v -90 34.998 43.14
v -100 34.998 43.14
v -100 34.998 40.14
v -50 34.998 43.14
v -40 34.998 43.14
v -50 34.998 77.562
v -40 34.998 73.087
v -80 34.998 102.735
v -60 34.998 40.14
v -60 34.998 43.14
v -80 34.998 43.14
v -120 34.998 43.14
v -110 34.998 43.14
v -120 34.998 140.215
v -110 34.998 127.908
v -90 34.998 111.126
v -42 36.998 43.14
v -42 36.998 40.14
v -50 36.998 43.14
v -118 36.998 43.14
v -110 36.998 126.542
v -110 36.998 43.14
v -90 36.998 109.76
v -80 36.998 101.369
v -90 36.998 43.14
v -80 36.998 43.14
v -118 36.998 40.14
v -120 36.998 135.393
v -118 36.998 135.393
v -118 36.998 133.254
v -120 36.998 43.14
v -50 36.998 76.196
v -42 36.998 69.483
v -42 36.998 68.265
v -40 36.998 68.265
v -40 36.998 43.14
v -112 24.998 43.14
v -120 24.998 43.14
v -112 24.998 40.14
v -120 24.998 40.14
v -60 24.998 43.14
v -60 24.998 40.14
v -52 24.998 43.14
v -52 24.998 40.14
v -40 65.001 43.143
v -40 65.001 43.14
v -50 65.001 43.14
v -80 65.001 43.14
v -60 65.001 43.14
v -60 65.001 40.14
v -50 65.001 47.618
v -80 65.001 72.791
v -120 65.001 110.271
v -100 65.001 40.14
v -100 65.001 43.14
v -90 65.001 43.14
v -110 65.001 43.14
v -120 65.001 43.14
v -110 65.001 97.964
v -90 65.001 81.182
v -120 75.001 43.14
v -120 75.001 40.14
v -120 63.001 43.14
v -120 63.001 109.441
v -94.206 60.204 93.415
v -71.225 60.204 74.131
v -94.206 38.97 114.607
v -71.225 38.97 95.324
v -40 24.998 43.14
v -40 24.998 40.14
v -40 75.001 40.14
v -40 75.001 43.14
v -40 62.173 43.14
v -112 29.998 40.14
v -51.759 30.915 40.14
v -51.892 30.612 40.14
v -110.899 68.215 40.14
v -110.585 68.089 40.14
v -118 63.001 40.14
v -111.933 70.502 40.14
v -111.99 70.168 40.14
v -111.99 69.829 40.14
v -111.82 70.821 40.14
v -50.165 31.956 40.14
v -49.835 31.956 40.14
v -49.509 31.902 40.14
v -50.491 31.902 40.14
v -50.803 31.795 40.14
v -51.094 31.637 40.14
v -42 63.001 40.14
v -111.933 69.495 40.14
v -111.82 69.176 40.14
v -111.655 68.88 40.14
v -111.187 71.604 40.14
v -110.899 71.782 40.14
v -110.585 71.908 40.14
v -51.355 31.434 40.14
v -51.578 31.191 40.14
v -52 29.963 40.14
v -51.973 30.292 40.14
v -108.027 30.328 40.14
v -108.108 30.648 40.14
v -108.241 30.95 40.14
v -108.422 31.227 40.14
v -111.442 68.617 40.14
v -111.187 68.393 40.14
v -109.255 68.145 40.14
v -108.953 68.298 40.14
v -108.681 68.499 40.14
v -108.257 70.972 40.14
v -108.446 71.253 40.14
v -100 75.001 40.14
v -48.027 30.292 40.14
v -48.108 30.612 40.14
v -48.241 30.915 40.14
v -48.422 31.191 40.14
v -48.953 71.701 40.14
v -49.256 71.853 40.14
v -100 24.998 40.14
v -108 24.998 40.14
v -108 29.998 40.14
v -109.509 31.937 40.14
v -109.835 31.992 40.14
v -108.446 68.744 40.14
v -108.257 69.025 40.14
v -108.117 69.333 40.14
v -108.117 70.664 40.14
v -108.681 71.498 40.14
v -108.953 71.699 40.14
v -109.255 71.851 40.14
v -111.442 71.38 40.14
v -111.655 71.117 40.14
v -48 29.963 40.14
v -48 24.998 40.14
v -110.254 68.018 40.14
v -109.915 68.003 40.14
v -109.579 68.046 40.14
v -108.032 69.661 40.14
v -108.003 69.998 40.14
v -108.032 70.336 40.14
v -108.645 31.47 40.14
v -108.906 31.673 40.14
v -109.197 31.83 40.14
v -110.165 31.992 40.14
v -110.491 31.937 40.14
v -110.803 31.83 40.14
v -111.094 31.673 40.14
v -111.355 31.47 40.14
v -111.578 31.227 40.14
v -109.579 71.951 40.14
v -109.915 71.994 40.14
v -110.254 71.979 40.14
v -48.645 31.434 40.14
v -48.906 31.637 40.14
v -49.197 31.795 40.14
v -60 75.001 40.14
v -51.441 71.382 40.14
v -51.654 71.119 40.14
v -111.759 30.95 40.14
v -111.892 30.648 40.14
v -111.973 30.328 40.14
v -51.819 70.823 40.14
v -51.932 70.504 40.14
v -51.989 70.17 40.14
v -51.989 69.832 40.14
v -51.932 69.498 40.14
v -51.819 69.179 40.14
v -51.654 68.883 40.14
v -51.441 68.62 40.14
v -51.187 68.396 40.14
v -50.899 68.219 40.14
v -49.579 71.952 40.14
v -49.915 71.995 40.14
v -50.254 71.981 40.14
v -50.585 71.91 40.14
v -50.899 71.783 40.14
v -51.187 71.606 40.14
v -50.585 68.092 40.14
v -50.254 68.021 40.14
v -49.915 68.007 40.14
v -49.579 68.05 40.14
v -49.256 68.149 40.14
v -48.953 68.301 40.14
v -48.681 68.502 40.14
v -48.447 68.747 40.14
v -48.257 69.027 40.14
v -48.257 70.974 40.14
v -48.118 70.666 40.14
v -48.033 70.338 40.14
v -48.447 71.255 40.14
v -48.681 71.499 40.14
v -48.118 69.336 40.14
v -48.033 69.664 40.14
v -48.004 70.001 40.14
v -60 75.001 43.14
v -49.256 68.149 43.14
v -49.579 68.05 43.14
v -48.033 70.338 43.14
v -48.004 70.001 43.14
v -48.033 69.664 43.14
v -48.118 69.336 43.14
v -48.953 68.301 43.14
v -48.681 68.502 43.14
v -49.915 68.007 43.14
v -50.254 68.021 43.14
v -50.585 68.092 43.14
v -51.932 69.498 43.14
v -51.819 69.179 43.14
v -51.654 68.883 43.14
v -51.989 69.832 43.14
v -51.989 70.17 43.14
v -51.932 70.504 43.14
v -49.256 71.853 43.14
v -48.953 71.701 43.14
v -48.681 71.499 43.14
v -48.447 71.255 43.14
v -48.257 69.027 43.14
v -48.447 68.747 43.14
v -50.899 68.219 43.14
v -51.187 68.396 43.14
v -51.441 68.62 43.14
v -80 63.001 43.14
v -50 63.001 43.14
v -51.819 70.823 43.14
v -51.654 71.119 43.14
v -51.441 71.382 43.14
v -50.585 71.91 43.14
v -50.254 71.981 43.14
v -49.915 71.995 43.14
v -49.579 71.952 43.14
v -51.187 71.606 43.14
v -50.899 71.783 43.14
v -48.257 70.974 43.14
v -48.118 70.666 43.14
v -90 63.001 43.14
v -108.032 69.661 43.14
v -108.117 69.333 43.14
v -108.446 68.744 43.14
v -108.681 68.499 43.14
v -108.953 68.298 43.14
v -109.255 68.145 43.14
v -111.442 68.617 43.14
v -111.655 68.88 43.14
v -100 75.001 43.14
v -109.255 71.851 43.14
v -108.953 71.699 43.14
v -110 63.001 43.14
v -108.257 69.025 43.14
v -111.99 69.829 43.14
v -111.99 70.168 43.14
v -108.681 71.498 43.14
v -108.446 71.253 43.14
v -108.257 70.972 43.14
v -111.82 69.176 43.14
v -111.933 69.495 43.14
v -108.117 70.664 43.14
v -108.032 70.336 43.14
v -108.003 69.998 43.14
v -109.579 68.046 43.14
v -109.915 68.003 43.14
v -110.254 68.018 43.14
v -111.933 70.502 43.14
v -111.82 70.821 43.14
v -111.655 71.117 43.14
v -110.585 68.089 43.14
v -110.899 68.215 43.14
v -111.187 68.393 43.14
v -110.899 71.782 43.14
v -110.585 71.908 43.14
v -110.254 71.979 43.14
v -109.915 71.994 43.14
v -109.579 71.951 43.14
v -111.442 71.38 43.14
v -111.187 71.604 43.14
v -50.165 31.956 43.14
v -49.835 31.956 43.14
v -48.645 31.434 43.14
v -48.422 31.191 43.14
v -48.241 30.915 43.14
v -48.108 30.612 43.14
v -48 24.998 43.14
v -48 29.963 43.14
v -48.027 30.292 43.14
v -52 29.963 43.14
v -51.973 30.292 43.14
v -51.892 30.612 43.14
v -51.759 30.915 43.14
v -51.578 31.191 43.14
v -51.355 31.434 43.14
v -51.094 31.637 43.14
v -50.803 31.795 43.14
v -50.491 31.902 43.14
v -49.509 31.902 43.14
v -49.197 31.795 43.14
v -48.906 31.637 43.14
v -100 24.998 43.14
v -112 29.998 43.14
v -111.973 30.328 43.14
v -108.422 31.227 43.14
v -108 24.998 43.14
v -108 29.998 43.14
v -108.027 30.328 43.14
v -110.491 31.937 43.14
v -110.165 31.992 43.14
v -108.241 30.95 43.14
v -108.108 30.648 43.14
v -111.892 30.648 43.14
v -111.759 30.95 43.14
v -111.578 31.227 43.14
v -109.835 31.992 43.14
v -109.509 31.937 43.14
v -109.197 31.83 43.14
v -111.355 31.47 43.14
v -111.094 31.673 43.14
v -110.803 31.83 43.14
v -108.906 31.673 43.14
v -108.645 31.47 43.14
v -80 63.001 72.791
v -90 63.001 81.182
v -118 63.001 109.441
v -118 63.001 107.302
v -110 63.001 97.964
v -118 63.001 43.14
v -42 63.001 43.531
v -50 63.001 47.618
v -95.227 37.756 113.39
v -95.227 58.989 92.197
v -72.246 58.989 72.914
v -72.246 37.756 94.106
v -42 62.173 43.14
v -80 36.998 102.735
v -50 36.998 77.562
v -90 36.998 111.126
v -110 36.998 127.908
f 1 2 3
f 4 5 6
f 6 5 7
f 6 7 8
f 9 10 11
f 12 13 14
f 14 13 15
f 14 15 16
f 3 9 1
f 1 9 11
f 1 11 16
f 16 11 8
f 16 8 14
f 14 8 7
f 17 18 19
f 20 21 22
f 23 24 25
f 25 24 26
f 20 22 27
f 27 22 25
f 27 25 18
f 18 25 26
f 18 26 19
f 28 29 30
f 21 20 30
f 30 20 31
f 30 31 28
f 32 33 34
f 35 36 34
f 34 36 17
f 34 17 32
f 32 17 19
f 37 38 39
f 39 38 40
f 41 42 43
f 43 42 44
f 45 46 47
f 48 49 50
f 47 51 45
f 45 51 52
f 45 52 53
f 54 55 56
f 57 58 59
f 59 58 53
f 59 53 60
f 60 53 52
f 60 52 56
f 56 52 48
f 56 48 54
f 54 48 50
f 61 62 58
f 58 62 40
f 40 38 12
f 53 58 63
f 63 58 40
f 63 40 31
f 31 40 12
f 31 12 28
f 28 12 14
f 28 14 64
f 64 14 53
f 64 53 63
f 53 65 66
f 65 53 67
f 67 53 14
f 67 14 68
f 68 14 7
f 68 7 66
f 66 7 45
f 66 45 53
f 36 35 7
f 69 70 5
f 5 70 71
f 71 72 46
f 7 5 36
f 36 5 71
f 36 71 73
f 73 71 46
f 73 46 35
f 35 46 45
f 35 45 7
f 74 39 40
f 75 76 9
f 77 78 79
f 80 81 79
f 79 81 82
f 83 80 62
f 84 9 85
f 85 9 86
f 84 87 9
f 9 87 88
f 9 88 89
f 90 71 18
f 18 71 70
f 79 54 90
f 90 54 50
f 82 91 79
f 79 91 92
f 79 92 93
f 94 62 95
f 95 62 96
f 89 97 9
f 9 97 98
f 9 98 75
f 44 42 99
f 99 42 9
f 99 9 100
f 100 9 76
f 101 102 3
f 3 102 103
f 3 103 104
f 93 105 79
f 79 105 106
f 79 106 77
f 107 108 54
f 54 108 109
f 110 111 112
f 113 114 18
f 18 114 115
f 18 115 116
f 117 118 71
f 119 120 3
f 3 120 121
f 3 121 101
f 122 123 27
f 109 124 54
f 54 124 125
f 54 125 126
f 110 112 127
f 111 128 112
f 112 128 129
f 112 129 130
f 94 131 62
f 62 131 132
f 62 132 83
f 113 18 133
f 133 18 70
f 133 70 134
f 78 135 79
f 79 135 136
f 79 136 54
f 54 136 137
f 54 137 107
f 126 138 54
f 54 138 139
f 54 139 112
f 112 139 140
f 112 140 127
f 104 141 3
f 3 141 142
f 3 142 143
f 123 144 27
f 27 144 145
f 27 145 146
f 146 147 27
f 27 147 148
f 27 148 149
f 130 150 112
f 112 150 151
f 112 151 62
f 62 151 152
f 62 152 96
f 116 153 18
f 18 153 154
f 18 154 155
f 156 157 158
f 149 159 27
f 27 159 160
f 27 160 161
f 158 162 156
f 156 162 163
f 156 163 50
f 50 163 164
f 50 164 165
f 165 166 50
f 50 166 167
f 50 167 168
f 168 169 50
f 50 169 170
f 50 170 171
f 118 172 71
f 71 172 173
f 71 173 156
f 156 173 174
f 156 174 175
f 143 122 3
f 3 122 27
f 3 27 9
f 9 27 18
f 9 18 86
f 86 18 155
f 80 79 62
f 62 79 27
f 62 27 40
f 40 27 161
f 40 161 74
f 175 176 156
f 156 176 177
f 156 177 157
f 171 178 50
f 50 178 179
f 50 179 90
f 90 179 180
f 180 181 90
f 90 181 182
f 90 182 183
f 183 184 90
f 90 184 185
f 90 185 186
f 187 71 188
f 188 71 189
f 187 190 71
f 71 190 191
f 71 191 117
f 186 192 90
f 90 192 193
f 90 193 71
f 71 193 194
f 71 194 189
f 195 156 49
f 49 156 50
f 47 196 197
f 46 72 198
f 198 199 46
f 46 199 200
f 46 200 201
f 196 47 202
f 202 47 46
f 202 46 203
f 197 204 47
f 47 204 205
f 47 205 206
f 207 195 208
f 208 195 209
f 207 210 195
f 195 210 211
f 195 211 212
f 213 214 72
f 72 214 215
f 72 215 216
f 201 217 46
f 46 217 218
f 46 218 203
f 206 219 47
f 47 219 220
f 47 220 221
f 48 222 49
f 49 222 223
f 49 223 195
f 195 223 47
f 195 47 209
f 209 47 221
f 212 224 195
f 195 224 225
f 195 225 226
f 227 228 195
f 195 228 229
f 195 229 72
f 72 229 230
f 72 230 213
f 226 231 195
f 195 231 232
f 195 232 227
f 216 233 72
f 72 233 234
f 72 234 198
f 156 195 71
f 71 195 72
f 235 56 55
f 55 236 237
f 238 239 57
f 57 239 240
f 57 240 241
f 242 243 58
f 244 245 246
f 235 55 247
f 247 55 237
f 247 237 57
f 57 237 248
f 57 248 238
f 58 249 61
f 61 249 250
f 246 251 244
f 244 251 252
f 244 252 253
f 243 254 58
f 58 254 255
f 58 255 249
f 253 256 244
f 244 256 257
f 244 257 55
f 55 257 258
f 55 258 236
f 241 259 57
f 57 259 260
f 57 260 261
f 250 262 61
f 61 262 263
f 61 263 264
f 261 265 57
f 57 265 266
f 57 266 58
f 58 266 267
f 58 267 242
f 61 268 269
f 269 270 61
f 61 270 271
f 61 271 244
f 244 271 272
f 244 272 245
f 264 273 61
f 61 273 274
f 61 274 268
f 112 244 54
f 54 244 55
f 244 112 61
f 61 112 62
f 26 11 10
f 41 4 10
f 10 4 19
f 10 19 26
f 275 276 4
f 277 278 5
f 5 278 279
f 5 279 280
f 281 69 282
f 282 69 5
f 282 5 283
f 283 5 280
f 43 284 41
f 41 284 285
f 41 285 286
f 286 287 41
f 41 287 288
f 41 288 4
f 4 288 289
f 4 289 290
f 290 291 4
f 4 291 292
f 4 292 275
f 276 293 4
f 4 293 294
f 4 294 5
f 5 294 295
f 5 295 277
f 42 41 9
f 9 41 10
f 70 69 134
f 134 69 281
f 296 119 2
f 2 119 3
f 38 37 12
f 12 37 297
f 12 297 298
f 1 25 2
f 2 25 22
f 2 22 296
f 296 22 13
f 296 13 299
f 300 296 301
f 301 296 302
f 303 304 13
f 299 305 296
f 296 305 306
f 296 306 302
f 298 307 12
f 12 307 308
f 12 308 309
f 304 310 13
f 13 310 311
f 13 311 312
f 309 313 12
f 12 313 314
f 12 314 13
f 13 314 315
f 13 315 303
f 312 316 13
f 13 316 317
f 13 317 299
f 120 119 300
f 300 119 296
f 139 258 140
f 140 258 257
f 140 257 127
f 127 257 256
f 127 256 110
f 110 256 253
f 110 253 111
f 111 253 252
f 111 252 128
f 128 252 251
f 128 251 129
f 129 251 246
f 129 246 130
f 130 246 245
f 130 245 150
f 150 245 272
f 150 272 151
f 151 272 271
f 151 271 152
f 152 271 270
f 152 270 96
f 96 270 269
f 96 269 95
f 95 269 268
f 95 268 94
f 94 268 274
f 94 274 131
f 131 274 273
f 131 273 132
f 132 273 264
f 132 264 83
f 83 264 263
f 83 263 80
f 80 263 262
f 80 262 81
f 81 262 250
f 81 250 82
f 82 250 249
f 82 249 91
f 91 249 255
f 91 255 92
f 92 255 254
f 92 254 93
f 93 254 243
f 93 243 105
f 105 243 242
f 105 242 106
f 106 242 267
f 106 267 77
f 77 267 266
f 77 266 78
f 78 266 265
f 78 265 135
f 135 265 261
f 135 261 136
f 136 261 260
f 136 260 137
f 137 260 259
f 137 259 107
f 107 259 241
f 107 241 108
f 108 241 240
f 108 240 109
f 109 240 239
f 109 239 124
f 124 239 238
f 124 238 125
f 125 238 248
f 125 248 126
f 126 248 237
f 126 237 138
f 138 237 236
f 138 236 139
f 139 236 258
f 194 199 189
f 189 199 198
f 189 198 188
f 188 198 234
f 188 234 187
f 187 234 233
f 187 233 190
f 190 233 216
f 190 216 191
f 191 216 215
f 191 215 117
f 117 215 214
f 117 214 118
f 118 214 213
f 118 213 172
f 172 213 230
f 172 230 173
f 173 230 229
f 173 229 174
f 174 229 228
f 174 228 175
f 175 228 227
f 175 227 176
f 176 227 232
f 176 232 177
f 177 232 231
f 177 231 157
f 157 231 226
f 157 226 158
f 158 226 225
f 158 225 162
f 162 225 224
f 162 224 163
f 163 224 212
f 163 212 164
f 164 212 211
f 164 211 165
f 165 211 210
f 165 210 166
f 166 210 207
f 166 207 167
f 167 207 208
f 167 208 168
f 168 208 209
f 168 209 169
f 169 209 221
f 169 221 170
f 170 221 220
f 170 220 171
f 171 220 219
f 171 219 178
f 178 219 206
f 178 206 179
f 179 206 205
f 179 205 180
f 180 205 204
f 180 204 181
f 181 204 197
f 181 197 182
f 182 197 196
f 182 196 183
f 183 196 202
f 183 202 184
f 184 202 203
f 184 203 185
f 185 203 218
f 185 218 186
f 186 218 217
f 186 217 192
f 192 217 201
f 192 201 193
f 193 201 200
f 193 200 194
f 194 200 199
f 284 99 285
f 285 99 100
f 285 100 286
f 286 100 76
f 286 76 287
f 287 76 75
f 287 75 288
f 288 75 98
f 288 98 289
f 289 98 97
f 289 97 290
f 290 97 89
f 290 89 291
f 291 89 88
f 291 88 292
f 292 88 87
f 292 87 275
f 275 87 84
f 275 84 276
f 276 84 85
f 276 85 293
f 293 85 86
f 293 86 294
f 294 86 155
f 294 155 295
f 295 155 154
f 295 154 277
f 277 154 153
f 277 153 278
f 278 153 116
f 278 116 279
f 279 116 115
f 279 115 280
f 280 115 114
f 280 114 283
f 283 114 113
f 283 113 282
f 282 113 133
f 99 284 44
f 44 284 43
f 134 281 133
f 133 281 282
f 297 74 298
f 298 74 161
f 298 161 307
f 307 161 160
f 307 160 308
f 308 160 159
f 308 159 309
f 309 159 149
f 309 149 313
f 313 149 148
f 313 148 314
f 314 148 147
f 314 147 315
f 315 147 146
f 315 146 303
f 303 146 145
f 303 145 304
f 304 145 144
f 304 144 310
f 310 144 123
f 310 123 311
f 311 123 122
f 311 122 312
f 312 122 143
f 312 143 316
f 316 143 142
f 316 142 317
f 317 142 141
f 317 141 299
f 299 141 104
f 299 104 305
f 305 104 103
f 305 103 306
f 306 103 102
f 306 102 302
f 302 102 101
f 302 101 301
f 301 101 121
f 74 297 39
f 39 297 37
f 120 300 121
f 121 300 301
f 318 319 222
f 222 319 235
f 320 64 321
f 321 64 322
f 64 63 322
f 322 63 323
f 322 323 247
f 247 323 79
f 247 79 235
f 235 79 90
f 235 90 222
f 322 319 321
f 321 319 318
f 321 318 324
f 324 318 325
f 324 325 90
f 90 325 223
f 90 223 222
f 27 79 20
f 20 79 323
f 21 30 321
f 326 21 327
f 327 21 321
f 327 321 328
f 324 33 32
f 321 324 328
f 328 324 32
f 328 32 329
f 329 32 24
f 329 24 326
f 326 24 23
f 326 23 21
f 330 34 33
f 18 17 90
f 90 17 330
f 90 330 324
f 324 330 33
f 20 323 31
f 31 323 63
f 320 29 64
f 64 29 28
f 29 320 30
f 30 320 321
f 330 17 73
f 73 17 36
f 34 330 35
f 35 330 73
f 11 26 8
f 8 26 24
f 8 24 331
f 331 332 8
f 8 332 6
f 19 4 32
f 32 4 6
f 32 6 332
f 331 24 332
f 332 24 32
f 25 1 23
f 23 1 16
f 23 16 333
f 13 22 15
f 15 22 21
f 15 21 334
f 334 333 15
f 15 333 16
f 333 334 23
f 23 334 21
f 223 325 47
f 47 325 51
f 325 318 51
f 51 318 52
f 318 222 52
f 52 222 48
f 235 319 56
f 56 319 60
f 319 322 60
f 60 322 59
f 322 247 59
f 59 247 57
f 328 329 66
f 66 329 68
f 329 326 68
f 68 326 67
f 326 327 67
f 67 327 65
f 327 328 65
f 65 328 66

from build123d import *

# Parameters (mm, degrees)
SKETCH_2_W           = 240
SKETCH_2_H           = 150
EXTRUDE_1_DEPTH      = 250
CUT_EXTRUDE_1_DEPTH  = 200
CUT_REVOLVE_1_ANGLE  = 37.4
SKETCH_13_W          = 80
SKETCH_13_H          = 100
CUT_EXTRUDE_2_DEPTH  = 295
SKETCH_14_W          = 160
SKETCH_14_H          = 150
CUT_EXTRUDE_3_DEPTH  = 295
SKETCH_16_W          = 80
SKETCH_16_H          = 28.16
CUT_EXTRUDE_4_DEPTH  = 295
SKETCH_22_W          = 80
SKETCH_22_H          = 9.999058643
CUT_EXTRUDE_5_DEPTH  = 120
SKETCH_23_W          = 80
SKETCH_23_H          = 9.99833939
CUT_EXTRUDE_6_DEPTH  = 142
SKETCH_24_W          = 80
SKETCH_24_H          = 11.98
CUT_EXTRUDE_7_DEPTH  = 142
SKETCH_25_W          = 20
SKETCH_25_H          = 3
EXTRUDE_2_DEPTH      = 10
SKETCH_26_W          = 20
SKETCH_26_H          = 3
EXTRUDE_3_DEPTH      = 10
SKETCH_27_W          = 20
SKETCH_27_H          = 3
EXTRUDE_4_DEPTH      = 10
SKETCH_28_W          = 20
SKETCH_28_H          = 3
EXTRUDE_5_DEPTH      = 10
SKETCH_29_R          = 1.997024656
CUT_EXTRUDE_8_DEPTH  = 10
SKETCH_30_R          = 1.996157305
CUT_EXTRUDE_9_DEPTH  = 10
CUT_EXTRUDE_10_DEPTH = 10
CUT_EXTRUDE_11_DEPTH = 10
SKETCH_34_W          = 76
SKETCH_34_H          = 26.002601967
CUT_EXTRUDE_14_DEPTH = 2
CUT_EXTRUDE_15_DEPTH = 2
CUT_EXTRUDE_17_DEPTH = 2
CUT_EXTRUDE_18_DEPTH = 2
CUT_EXTRUDE_20_DEPTH = 2
CUT_EXTRUDE_22_DEPTH = 2


with BuildPart() as part:
    # 草图2 → 凸台-拉伸1 (new body)
    with BuildSketch(Plane.XY):
        Rectangle(SKETCH_2_W, SKETCH_2_H)
    extrude(amount=EXTRUDE_1_DEPTH)

    # 草图9 → 切除-拉伸1 (cut)
    with BuildSketch(Plane(origin=(0, 75, 0), x_dir=(1, 0, 0), z_dir=(0, 1, 0))):
        Polygon((120, -250), (-120, -250), (208.236072982, 25.422767778), align=None)
    extrude(amount=-CUT_EXTRUDE_1_DEPTH, mode=Mode.SUBTRACT)

    # 草图10 → 切除-旋转1 (revolve, cut)
    with BuildSketch(Plane(origin=(73.519859787, 0, 87.617557028), x_dir=(0.7660444431189816, 0, -0.6427876096865353), z_dir=(0.6427876096865353, 0, 0.7660444431189817))):
        Polygon((60.675513844, -75), (-252.622235596, -75), (-252.622235596, 287.743692907), (60.675513844, 234.486341656), align=None)
    revolve(axis=Axis((120, -75, 48.616088517), (-0.7660444431189815, 0, 0.6427876096865353)), revolution_arc=CUT_REVOLVE_1_ANGLE, mode=Mode.SUBTRACT)

    # 草图13 → 切除-拉伸2 (cut)
    with BuildSketch(Plane(origin=(0, 0, 0), x_dir=(-1, 0, 0), z_dir=(0, 0, -1))):
        with Locations((80, -25)):
            Rectangle(SKETCH_13_W, SKETCH_13_H)
    extrude(amount=-CUT_EXTRUDE_2_DEPTH, mode=Mode.SUBTRACT)

    # 草图14 → 切除-拉伸3 (cut)
    with BuildSketch(Plane(origin=(0, 0, 0), x_dir=(-1, 0, 0), z_dir=(0, 0, -1))):
        with Locations((-40, 0)):
            Rectangle(SKETCH_14_W, SKETCH_14_H)
    extrude(amount=-CUT_EXTRUDE_3_DEPTH, mode=Mode.SUBTRACT)

    # 草图16 → 切除-拉伸4 (cut)
    with BuildSketch(Plane(origin=(0, 75, 0), x_dir=(1, 0, 0), z_dir=(0, 1, 0))):
        with Locations((-80, -14.08)):
            Rectangle(SKETCH_16_W, SKETCH_16_H)
    extrude(amount=-CUT_EXTRUDE_4_DEPTH, mode=Mode.SUBTRACT)

    # 草图22 → 切除-拉伸5 (cut)
    with BuildSketch(Plane(origin=(0, 0, 28.16), x_dir=(-1, 0, 0), z_dir=(0, 0, -1))):
        with Locations((80, 70.000470678)):
            Rectangle(SKETCH_22_W, SKETCH_22_H)
    extrude(amount=-CUT_EXTRUDE_5_DEPTH, mode=Mode.SUBTRACT)

    # 草图23 → 切除-拉伸6 (cut)
    with BuildSketch(Plane(origin=(0, 0, 28.16), x_dir=(-1, 0, 0), z_dir=(0, 0, -1))):
        with Locations((80, 29.999169695)):
            Rectangle(SKETCH_23_W, SKETCH_23_H)
    extrude(amount=-CUT_EXTRUDE_6_DEPTH, mode=Mode.SUBTRACT)

    # 草图24 → 切除-拉伸7 (cut)
    with BuildSketch(Plane(origin=(0, 65.000941357, 0), x_dir=(1, 0, 0), z_dir=(0, 1, 0))):
        with Locations((-80, -34.15)):
            Rectangle(SKETCH_24_W, SKETCH_24_H)
    extrude(amount=-CUT_EXTRUDE_7_DEPTH, mode=Mode.SUBTRACT)

    # 草图25 → 凸台-拉伸2 (add)
    with BuildSketch(Plane(origin=(0, 65.000941357, 0), x_dir=(1, 0, 0), z_dir=(0, 1, 0))):
        with Locations((-50, -41.64)):
            Rectangle(SKETCH_25_W, SKETCH_25_H)
    extrude(amount=EXTRUDE_2_DEPTH)

    # 草图26 → 凸台-拉伸3 (add)
    with BuildSketch(Plane(origin=(0, 65.000941357, 0), x_dir=(1, 0, 0), z_dir=(0, 1, 0))):
        with Locations((-110, -41.64)):
            Rectangle(SKETCH_26_W, SKETCH_26_H)
    extrude(amount=EXTRUDE_3_DEPTH)

    # 草图27 → 凸台-拉伸4 (add)
    with BuildSketch(Plane.XZ.offset(-34.99833939)):
        with Locations((-50, 41.64)):
            Rectangle(SKETCH_27_W, SKETCH_27_H)
    extrude(amount=EXTRUDE_4_DEPTH)

    # 草图28 → 凸台-拉伸5 (add)
    with BuildSketch(Plane.XZ.offset(-34.99833939)):
        with Locations((-110, 41.64)):
            Rectangle(SKETCH_28_W, SKETCH_28_H)
    extrude(amount=EXTRUDE_5_DEPTH)

    # 草图29 → 切除-拉伸8 (cut)
    with BuildSketch(Plane.XY.offset(43.14)):
        with Locations((-110, 69.998446832)):
            Circle(SKETCH_29_R)
    extrude(amount=-CUT_EXTRUDE_8_DEPTH, mode=Mode.SUBTRACT)

    # 草图30 → 切除-拉伸9 (cut)
    with BuildSketch(Plane.XY.offset(43.14)):
        with Locations((-50, 70.000941357)):
            Circle(SKETCH_30_R)
    extrude(amount=-CUT_EXTRUDE_9_DEPTH, mode=Mode.SUBTRACT)

    # 草图31 → 切除-拉伸10 (cut)
    with BuildSketch(Plane(origin=(0, 0, 40.14), x_dir=(-1, 0, 0), z_dir=(0, 0, -1))):
        with BuildLine():
            ThreePointArc((52, 29.962991919), (50, 31.962991919), (48, 29.962991919))
            Line((48, 29.962991919), (50, 29.962991919))
            Line((50, 29.962991919), (52, 29.962991919))
        make_face()
        with BuildLine():
            Line((48, 29.962991919), (48, 24.99833939))
            Line((48, 24.99833939), (50, 24.99833939))
            Line((50, 24.99833939), (50, 27.962991919))
            ThreePointArc((50, 27.962991919), (48.585786438, 28.548778357), (48, 29.962991919))
        make_face()
        with BuildLine():
            Line((50, 27.962991919), (50, 24.99833939))
            Line((50, 24.99833939), (52, 24.99833939))
            Line((52, 24.99833939), (52, 29.962991919))
            ThreePointArc((52, 29.962991919), (51.414213562, 28.548778357), (50, 27.962991919))
        make_face()
        with BuildLine():
            Line((50, 29.962991919), (48, 29.962991919))
            ThreePointArc((48, 29.962991919), (48.585786438, 28.548778357), (50, 27.962991919))
            Line((50, 27.962991919), (50, 29.962991919))
        make_face()
        with BuildLine():
            Line((50, 29.962991919), (50, 27.962991919))
            ThreePointArc((50, 27.962991919), (51.414213562, 28.548778357), (52, 29.962991919))
            Line((52, 29.962991919), (50, 29.962991919))
        make_face()
    extrude(amount=-CUT_EXTRUDE_10_DEPTH, mode=Mode.SUBTRACT)

    # 草图32 → 切除-拉伸11 (cut)
    with BuildSketch(Plane(origin=(0, 0, 40.14), x_dir=(-1, 0, 0), z_dir=(0, 0, -1))):
        with BuildLine():
            Line((112, 24.99833939), (112, 29.99833939))
            ThreePointArc((112, 29.99833939), (110, 31.99833939), (108, 29.99833939))
            Line((108, 29.99833939), (108, 24.99833939))
            Line((108, 24.99833939), (112, 24.99833939))
        make_face()
    extrude(amount=-CUT_EXTRUDE_11_DEPTH, mode=Mode.SUBTRACT)

    # 抽壳9: read off the stored shape, not the designer's step
    # 抽壳9: loft between two sections, ruled curve by curve
    shell_9_from = [
        Edge.make_line((-118, 36.99833939, 133.254360386), (-118, 36.99833939, 42.14)),
        Edge.make_line((-118, 36.99833939, 133.254360386), (-42, 36.99833939, 69.482788417)),
        Edge.make_line((-42, 36.99833939, 69.482788417), (-42, 36.99833939, 42.14)),
        Edge.make_line((-118, 36.99833939, 42.14), (-42, 36.99833939, 42.14)),
    ]
    shell_9_to = [
        Edge.make_line((-118, 63.000941357, 107.302223356), (-118, 63.000941357, 42.14)),
        Edge.make_line((-118, 63.000941357, 107.302223356), (-42, 63.000941357, 43.530651387)),
        Edge.make_line((-42, 63.000941357, 43.530651387), (-42, 63.000941357, 42.14)),
        Edge.make_line((-118, 63.000941357, 42.14), (-42, 63.000941357, 42.14)),
    ]
    shell_9 = Solid(Shell([*[Face.make_surface_from_curves(shell_9_from[k], shell_9_to[k]) for k in range(4)], Face(Wire(shell_9_from)), Face(Wire(shell_9_to))]))
    add(shell_9, mode=Mode.SUBTRACT)

    # 草图34 → 切除-拉伸14 (cut)
    with BuildSketch(Plane(origin=(0, 0, 40.14), x_dir=(-1, 0, 0), z_dir=(0, 0, -1))):
        with Locations((80, 49.999640374)):
            Rectangle(SKETCH_34_W, SKETCH_34_H)
    extrude(amount=-CUT_EXTRUDE_14_DEPTH, mode=Mode.SUBTRACT)

    # 草图35 → 切除-拉伸15 (cut)
    with BuildSketch(Plane.ZY.offset(120)):
        Polygon((43.14, 63.000941357), (109.441202222, 63.000941357), (135.393339252, 36.99833939), (43.14, 36.99833939), align=None)
    extrude(amount=-CUT_EXTRUDE_15_DEPTH, mode=Mode.SUBTRACT)

    # 草图37 → 切除-拉伸17 (cut)
    with BuildSketch(Plane(origin=(-40, 0, 0), x_dir=(0, 0, -1), z_dir=(1, 0, 0))):
        Polygon((-43.14, 36.99833939), (-68.265368758, 36.99833939), (-43.14, 62.172565402), align=None)
    extrude(amount=-CUT_EXTRUDE_17_DEPTH, mode=Mode.SUBTRACT)

    # 草图38 → 切除-拉伸18 (cut)
    with BuildSketch(Plane.XZ.offset(-34.99833939)):
        Polygon((-110, 43.14), (-110, 127.907923344), (-90, 111.12593072), (-90, 43.14), align=None)
        Polygon((-50, 43.14), (-50, 77.561945473), (-80, 102.734934409), (-80, 43.14), align=None)
    extrude(amount=-CUT_EXTRUDE_18_DEPTH, mode=Mode.SUBTRACT)

    # 草图39 → 切除-拉伸20 (cut)
    with BuildSketch(Plane(origin=(0, 65.000941357, 0), x_dir=(1, 0, 0), z_dir=(0, 1, 0))):
        Polygon((-110, -43.14), (-110, -97.963549373), (-90, -81.18155675), (-90, -43.14), align=None)
        Polygon((-50, -43.14), (-50, -47.617571503), (-80, -72.790560438), (-80, -43.14), align=None)
    extrude(amount=-CUT_EXTRUDE_20_DEPTH, mode=Mode.SUBTRACT)

    # 草图40 → 切除-拉伸22 (cut)
    with BuildSketch(Plane(origin=(23.136711502, 27.51974584, 27.573259053), x_dir=(0.8597946952762991, -0.3607260251766269, -0.3614274709191423), z_dir=(0.5106398750339969, 0.6073758397232878, 0.6085569055936306))):
        Polygon((-109.748917815, -9.755427356), (-136.477779275, -23.377760676), (-136.477779275, -53.377760676), (-109.748917815, -39.755427356), align=None)
    extrude(amount=-CUT_EXTRUDE_22_DEPTH, mode=Mode.SUBTRACT)


solid = part.part
